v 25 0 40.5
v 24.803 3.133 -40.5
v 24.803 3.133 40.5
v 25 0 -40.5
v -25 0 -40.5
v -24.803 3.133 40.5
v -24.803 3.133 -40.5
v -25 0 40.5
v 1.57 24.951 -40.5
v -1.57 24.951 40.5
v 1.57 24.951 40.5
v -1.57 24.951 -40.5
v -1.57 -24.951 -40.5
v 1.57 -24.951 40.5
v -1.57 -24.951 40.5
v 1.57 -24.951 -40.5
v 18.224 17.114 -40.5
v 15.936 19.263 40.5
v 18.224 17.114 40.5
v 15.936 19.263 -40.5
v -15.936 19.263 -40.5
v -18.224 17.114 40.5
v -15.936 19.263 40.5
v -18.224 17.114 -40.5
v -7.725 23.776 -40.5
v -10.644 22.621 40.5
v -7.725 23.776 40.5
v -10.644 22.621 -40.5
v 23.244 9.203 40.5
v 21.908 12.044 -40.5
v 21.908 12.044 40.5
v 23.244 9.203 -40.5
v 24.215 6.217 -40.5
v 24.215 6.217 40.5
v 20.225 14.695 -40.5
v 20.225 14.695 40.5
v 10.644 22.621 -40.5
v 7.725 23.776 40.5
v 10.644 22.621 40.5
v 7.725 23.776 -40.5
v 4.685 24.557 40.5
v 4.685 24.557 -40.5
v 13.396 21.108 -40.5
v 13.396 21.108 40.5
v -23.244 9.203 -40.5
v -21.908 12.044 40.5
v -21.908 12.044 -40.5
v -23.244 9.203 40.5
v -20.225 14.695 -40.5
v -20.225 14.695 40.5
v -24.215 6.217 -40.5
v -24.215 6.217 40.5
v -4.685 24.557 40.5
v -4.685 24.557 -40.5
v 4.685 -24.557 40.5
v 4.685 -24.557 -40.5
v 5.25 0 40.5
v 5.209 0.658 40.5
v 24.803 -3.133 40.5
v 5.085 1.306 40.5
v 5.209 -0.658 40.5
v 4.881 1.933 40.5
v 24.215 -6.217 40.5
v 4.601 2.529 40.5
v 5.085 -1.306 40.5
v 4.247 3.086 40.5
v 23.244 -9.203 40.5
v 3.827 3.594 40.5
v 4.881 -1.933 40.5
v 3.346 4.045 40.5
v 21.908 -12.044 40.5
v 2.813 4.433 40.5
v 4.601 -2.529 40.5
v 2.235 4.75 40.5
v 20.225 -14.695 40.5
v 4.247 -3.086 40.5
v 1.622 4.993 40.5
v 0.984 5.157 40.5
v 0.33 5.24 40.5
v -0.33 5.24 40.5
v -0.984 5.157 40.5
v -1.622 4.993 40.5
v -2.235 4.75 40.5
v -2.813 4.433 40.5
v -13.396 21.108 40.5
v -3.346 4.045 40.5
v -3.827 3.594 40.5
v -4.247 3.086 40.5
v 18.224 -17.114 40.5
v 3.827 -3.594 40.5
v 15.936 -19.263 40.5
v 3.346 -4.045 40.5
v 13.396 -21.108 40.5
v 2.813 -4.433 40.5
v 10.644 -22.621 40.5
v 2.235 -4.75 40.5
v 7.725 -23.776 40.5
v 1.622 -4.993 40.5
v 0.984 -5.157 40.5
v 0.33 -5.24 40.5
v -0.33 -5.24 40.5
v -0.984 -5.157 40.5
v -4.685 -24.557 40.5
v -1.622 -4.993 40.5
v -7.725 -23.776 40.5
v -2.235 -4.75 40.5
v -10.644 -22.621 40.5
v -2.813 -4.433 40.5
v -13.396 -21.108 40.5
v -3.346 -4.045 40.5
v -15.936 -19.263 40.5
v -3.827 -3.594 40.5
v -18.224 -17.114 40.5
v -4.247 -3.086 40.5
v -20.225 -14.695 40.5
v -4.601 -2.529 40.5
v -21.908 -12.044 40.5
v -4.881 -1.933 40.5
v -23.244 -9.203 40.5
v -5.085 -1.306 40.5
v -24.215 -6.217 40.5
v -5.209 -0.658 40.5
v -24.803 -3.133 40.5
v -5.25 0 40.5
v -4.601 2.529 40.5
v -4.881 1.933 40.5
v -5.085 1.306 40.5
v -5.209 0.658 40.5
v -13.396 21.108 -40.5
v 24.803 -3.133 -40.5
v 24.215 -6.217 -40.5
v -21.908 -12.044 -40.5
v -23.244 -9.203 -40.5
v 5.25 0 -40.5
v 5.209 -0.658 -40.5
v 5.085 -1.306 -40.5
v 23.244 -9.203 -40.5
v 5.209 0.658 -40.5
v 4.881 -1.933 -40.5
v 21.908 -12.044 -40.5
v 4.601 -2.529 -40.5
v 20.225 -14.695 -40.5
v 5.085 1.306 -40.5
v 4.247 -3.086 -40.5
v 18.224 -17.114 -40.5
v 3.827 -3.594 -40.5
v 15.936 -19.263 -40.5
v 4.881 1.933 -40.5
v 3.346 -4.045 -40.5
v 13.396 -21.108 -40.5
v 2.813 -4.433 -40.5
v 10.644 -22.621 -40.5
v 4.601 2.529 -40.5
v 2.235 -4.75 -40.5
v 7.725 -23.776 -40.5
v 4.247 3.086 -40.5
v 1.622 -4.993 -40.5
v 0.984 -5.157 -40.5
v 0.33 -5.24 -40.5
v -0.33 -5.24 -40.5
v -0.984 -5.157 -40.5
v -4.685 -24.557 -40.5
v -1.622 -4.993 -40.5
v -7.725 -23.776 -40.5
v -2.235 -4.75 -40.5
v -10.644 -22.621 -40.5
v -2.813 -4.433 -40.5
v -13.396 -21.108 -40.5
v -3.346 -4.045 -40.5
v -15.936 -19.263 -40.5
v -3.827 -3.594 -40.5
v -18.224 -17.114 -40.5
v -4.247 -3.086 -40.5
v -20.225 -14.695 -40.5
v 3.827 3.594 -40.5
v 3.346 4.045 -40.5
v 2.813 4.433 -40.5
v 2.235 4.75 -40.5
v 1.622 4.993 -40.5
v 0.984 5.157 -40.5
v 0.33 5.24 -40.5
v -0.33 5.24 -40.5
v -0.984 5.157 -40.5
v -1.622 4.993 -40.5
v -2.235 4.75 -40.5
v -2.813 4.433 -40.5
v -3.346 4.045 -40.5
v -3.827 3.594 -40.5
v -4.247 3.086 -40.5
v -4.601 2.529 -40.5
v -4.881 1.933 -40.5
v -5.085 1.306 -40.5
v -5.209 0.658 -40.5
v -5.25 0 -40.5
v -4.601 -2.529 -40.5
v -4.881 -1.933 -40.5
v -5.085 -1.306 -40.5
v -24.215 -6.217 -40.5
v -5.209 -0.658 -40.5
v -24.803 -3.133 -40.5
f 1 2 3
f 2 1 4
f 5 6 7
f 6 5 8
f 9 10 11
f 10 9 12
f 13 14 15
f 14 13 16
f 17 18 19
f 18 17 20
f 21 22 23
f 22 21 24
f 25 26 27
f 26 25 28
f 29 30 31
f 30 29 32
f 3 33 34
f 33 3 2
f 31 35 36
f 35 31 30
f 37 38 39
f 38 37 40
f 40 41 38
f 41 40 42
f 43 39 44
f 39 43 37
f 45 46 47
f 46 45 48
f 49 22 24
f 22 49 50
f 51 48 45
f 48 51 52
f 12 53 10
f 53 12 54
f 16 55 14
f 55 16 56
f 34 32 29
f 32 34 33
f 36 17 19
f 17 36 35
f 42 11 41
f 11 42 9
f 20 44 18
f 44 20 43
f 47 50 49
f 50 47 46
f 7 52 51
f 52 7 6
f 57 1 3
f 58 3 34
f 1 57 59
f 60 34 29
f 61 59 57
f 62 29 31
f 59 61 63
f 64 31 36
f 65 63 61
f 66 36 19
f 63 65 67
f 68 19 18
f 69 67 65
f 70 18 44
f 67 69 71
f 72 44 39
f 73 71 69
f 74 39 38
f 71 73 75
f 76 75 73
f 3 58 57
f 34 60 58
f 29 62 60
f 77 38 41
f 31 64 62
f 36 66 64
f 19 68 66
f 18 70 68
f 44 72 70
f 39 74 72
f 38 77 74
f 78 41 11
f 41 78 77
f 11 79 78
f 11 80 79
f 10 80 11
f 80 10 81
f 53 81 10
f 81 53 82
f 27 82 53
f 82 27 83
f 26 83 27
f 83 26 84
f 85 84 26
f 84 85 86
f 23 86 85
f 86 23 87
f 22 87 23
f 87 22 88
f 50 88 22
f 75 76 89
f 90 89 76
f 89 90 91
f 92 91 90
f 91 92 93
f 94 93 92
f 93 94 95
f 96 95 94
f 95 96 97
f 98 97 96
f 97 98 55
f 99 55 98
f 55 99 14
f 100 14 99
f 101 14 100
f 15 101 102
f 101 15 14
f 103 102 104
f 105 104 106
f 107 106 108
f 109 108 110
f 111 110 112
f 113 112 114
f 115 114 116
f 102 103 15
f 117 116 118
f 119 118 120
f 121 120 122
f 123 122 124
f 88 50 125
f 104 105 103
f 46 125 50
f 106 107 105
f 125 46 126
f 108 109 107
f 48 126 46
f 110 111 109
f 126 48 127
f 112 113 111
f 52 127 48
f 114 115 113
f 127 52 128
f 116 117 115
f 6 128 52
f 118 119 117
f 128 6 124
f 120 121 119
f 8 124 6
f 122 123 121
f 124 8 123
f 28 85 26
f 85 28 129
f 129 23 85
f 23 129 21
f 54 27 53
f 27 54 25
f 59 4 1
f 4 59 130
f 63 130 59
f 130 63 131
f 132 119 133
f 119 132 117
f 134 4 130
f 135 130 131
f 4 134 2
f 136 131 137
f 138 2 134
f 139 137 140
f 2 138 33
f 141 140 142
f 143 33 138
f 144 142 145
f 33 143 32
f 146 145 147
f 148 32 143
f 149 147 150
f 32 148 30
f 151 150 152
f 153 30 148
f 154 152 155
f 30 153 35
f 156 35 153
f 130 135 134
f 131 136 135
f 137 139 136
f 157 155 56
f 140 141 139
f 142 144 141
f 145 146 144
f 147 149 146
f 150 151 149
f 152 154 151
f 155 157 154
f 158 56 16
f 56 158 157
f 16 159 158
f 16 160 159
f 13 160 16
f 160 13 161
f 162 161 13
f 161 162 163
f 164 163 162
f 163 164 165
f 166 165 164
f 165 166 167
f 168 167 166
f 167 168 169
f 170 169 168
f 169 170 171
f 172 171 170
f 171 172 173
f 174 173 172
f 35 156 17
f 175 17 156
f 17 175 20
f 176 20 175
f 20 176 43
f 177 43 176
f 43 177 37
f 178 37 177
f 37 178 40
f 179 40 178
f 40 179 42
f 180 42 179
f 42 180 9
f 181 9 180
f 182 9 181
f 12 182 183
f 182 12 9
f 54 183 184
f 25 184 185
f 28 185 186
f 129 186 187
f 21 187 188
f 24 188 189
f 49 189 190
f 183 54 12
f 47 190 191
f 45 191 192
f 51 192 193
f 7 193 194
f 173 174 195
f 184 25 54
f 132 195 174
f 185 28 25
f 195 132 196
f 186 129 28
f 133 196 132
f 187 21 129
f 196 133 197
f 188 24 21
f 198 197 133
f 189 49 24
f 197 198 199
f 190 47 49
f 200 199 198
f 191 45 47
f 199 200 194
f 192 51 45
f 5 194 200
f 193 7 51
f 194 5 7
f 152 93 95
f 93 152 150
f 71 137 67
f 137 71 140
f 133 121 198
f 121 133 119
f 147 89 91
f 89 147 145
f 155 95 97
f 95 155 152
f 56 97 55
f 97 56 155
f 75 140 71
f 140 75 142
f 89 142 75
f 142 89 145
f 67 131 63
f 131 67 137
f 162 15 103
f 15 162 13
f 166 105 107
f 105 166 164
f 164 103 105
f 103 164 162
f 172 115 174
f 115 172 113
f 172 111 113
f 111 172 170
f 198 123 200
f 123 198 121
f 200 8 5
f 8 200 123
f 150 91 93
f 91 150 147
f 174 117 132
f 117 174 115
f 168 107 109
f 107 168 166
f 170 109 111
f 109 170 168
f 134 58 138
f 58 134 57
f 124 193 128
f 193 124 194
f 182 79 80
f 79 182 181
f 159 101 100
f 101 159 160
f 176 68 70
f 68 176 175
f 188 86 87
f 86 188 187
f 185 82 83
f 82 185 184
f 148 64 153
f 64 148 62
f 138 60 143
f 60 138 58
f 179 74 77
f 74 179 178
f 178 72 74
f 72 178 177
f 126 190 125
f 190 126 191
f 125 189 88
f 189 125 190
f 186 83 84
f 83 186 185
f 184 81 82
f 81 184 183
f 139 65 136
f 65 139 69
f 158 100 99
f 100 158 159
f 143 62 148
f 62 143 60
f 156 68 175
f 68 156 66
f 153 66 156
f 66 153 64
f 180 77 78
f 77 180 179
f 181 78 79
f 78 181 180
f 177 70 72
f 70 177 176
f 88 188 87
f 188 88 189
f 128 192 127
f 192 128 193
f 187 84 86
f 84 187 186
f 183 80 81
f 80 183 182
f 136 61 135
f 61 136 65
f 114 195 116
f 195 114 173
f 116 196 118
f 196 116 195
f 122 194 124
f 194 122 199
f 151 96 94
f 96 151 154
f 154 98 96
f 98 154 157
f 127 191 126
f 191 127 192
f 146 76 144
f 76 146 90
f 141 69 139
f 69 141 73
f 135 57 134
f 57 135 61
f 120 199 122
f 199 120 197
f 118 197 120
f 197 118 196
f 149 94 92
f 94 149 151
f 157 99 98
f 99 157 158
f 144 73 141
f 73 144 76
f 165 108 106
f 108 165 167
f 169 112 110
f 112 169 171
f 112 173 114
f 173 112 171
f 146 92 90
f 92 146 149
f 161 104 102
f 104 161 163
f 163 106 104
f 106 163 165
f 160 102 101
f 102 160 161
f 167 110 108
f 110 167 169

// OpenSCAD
$fn = 50;


difference() {
	union() {
		translate(v = [0, 0, -40.5000000000]) {
			cylinder(h = 81, r = 25.0000000000);
		}
	}
	union() {
		translate(v = [0, 0, -100.0000000000]) {
			cylinder(h = 200, r = 5.2500000000);
		}
	}
}
